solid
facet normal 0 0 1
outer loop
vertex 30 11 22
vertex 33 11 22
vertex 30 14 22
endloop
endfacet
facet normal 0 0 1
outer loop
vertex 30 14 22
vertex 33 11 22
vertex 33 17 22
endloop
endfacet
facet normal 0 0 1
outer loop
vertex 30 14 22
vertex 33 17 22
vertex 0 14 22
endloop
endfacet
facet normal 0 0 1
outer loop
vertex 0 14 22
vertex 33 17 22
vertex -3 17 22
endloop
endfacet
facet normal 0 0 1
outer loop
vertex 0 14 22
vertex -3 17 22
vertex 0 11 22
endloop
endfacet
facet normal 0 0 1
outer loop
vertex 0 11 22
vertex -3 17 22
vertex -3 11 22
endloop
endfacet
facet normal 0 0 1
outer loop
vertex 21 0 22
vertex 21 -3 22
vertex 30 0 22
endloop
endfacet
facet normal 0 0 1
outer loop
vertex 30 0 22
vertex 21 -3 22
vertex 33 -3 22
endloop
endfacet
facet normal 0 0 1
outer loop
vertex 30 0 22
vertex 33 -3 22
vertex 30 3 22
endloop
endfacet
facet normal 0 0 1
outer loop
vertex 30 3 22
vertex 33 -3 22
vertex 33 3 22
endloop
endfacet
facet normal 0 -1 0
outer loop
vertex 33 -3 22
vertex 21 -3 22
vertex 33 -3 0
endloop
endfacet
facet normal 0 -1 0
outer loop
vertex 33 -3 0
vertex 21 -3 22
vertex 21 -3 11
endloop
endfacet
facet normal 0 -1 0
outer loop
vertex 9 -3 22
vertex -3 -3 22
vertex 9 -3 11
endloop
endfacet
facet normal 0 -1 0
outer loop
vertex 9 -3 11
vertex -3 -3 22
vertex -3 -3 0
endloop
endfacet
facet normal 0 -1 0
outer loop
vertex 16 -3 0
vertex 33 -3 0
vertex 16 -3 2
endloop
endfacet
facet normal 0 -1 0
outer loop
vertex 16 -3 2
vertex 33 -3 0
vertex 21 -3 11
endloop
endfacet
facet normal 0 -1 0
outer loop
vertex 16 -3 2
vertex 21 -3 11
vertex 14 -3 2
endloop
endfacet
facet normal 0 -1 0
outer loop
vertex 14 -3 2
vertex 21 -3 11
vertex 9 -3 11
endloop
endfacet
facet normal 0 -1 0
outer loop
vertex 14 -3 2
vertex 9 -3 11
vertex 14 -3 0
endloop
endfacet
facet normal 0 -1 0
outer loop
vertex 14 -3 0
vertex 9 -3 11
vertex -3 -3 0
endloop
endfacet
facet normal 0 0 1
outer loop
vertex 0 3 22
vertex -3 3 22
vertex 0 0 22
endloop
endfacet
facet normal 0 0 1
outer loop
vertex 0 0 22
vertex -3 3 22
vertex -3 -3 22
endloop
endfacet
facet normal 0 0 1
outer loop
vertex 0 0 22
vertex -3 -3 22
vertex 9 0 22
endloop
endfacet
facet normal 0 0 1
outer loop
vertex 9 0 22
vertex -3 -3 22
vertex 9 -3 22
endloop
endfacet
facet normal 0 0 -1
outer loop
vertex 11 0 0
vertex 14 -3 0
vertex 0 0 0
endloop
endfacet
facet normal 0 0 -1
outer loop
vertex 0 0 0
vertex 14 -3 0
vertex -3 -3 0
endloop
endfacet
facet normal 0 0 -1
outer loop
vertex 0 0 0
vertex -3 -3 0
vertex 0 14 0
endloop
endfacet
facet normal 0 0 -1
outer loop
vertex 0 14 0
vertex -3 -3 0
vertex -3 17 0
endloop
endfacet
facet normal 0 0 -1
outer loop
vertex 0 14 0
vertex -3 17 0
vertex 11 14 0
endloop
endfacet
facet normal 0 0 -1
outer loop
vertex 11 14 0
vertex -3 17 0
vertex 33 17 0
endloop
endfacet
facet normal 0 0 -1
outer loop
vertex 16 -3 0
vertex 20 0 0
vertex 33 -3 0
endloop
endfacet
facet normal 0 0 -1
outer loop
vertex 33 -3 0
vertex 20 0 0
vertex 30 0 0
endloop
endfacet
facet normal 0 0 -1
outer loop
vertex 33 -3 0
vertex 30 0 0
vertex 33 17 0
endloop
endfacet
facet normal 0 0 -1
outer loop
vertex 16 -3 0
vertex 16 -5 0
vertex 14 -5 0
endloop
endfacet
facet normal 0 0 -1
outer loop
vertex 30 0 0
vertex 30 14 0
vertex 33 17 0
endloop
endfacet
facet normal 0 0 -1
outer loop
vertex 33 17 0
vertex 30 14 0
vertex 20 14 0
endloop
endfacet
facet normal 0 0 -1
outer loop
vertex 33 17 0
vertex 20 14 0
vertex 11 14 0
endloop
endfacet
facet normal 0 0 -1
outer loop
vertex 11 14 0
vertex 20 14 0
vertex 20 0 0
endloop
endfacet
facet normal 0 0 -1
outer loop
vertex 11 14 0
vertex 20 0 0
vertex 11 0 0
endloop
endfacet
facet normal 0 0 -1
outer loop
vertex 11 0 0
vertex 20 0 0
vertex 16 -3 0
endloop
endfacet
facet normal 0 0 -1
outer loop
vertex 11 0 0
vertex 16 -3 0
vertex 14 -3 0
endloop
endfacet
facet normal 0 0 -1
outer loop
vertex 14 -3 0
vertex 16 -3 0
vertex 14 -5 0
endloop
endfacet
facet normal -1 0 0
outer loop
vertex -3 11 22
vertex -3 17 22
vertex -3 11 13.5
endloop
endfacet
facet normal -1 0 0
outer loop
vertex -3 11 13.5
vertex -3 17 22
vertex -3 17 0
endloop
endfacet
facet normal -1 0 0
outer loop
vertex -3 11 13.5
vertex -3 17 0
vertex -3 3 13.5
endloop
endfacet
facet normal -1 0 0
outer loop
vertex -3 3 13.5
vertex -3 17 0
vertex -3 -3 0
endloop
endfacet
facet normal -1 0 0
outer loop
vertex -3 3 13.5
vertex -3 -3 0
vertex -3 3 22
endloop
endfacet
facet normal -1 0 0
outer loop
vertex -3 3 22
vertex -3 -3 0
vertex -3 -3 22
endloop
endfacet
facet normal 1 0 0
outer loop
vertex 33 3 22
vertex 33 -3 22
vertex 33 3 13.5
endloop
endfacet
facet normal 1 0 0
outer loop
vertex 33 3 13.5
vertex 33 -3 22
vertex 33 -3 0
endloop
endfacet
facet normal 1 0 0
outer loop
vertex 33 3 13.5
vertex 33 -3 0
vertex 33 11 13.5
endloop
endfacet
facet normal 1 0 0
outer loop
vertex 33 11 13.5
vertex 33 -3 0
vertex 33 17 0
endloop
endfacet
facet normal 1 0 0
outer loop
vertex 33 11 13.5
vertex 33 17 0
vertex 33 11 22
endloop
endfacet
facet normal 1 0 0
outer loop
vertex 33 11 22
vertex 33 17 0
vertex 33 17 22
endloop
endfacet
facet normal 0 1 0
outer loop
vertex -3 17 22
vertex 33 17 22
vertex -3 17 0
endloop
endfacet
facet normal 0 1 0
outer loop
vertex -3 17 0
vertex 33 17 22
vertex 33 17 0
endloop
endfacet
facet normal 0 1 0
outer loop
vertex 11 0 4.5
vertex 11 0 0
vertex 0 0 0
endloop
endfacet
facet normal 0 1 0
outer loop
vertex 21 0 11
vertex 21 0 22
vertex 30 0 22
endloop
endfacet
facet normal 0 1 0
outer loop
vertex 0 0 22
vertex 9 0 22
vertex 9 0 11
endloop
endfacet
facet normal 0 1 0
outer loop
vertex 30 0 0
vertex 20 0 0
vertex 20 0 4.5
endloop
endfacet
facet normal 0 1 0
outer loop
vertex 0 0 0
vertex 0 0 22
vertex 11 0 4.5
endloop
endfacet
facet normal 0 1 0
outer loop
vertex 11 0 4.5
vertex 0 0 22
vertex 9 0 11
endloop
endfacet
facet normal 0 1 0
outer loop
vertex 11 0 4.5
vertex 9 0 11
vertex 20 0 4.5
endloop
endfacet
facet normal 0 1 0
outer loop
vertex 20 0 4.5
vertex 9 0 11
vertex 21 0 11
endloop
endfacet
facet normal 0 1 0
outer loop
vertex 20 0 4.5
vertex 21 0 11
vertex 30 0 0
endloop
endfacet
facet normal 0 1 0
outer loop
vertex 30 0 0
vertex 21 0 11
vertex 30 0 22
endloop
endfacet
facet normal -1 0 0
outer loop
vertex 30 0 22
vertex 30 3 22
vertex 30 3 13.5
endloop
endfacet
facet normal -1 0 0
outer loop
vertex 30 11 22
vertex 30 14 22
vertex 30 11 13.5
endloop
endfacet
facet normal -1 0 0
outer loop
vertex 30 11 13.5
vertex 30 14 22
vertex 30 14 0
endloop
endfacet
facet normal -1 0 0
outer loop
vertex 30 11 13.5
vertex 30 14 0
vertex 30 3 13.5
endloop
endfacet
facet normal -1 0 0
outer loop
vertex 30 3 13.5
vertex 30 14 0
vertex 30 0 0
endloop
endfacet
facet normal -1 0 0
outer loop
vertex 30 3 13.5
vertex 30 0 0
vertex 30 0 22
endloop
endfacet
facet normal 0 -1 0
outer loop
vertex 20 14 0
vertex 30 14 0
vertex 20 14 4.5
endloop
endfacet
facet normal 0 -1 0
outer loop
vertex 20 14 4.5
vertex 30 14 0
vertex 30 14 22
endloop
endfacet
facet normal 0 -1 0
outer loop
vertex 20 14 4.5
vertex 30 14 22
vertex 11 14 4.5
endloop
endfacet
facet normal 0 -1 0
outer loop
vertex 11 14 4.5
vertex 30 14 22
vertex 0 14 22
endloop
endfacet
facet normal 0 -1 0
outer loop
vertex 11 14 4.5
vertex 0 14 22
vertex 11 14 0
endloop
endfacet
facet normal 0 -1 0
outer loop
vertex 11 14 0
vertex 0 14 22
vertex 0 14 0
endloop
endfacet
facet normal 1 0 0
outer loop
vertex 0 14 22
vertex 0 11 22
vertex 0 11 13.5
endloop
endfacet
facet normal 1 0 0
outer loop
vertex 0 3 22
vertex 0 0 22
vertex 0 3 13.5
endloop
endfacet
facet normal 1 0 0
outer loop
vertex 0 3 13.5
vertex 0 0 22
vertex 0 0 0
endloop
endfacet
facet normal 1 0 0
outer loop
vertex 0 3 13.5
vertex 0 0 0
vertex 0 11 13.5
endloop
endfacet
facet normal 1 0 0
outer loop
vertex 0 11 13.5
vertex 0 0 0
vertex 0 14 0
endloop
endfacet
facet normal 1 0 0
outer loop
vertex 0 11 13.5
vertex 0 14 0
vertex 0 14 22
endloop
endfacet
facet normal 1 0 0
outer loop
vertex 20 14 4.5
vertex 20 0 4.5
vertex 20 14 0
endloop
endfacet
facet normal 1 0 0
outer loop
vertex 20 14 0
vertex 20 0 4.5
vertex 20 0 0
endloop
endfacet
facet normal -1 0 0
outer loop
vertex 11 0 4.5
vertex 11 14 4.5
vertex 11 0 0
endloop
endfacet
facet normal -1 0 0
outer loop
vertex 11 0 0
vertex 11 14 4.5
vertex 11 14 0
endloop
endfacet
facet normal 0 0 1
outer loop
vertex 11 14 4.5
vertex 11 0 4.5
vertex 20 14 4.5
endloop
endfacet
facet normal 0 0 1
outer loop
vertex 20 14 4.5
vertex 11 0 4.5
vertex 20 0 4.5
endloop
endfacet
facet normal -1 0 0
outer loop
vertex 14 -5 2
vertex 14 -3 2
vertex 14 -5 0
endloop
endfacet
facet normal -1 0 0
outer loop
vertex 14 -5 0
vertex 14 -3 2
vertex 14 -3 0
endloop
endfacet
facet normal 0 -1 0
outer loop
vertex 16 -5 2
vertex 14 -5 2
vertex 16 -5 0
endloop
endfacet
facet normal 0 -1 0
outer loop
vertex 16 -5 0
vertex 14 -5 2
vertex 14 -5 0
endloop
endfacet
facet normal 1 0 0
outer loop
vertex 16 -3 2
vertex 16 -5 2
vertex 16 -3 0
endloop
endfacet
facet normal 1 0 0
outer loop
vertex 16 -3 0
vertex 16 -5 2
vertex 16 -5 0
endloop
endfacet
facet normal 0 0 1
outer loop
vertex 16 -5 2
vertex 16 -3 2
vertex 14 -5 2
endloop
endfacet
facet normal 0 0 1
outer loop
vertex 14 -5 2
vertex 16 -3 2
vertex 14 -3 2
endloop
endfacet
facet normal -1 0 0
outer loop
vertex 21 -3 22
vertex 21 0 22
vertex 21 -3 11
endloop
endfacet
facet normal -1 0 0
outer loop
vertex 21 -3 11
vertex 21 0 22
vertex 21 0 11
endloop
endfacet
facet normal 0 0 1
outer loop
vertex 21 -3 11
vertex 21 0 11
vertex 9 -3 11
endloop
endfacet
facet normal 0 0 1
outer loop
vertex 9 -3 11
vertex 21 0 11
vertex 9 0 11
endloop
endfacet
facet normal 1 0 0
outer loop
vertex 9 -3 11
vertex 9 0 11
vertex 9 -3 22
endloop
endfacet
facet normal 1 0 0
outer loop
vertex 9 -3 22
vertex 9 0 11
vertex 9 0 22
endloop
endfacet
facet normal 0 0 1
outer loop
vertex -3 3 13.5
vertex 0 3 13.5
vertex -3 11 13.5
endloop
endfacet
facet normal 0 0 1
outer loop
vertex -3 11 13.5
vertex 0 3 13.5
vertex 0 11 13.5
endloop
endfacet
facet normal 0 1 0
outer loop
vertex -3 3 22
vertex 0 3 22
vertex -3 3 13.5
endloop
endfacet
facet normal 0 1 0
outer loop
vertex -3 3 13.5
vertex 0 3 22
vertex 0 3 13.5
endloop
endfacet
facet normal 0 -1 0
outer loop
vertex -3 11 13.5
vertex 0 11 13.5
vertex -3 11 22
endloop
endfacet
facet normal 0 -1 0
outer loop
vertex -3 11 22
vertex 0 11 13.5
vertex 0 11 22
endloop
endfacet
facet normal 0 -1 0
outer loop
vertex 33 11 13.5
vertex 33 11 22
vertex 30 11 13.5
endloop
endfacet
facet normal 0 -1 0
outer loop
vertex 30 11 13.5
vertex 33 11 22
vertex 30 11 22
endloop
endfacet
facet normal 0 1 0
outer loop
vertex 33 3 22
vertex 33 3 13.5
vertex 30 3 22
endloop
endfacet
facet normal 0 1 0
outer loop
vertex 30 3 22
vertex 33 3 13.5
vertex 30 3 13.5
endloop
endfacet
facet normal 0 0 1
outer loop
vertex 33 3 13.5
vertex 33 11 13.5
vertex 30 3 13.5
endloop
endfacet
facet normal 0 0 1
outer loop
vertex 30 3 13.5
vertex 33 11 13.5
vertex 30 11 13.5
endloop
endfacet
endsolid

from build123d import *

# Parameters (mm, degrees)
SKETCH_1_W          = 36
SKETCH_1_H          = 20
SKETCH_1_W_2        = 30
SKETCH_1_H_2        = 14
EXTRUDE_2_DEPTH     = 22
SKETCH_2_W          = 9
SKETCH_2_H          = 14
EXTRUDE_3_DEPTH     = 4.5
SKETCH_4_W          = 2
SKETCH_4_H          = 2
EXTRUDE_4_DEPTH     = 2
CUT_EXTRUDE_1_REACH = 46.418
SKETCH_5_W          = 12
SKETCH_5_H          = 11
SKETCH_6_W          = 36
SKETCH_6_H          = 8
CUT_EXTRUDE_2_DEPTH = 8.5


with BuildPart() as part:
    # 스케치1 → 보스-돌출2 (new body)
    with BuildSketch(Plane.XY):
        with Locations((15, 7)):
            Rectangle(SKETCH_1_W, SKETCH_1_H)
        with Locations((15, 7)):
            Rectangle(SKETCH_1_W_2, SKETCH_1_H_2, mode=Mode.SUBTRACT)
    extrude(amount=EXTRUDE_2_DEPTH)

    # 스케치2 → 보스-돌출3 (add)
    with BuildSketch(Plane(origin=(0, 0, 0), x_dir=(-1, 0, 0), z_dir=(0, 0, -1))):
        with Locations((-15.5, 7)):
            Rectangle(SKETCH_2_W, SKETCH_2_H)
    extrude(amount=-EXTRUDE_3_DEPTH)

    # 스케치4 → 보스-돌출4 (add)
    with BuildSketch(Plane(origin=(0, 0, 0), x_dir=(-1, 0, 0), z_dir=(0, 0, -1))):
        with Locations((-15, -4)):
            Rectangle(SKETCH_4_W, SKETCH_4_H)
    extrude(amount=-EXTRUDE_4_DEPTH)

    # 스케치5 → 컷-돌출1 (cut, up to next)
    with BuildSketch(Plane.XZ.offset(3), mode=Mode.PRIVATE) as cut_extrude_1_sk1:
        with Locations((15, 16.5)):
            Rectangle(SKETCH_5_W, SKETCH_5_H)
    cut_extrude_1_tool1 = extrude(cut_extrude_1_sk1.sketch, amount=-CUT_EXTRUDE_1_REACH, mode=Mode.PRIVATE) & part.part
    add(cut_extrude_1_tool1.solids().sort_by_distance((15, -3, 16.5))[0], mode=Mode.SUBTRACT)

    # 스케치6 → 컷-돌출2 (cut)
    with BuildSketch(Plane.XY.offset(22)):
        with Locations((15, 7)):
            Rectangle(SKETCH_6_W, SKETCH_6_H)
    extrude(amount=-CUT_EXTRUDE_2_DEPTH, mode=Mode.SUBTRACT)


solid = part.part
